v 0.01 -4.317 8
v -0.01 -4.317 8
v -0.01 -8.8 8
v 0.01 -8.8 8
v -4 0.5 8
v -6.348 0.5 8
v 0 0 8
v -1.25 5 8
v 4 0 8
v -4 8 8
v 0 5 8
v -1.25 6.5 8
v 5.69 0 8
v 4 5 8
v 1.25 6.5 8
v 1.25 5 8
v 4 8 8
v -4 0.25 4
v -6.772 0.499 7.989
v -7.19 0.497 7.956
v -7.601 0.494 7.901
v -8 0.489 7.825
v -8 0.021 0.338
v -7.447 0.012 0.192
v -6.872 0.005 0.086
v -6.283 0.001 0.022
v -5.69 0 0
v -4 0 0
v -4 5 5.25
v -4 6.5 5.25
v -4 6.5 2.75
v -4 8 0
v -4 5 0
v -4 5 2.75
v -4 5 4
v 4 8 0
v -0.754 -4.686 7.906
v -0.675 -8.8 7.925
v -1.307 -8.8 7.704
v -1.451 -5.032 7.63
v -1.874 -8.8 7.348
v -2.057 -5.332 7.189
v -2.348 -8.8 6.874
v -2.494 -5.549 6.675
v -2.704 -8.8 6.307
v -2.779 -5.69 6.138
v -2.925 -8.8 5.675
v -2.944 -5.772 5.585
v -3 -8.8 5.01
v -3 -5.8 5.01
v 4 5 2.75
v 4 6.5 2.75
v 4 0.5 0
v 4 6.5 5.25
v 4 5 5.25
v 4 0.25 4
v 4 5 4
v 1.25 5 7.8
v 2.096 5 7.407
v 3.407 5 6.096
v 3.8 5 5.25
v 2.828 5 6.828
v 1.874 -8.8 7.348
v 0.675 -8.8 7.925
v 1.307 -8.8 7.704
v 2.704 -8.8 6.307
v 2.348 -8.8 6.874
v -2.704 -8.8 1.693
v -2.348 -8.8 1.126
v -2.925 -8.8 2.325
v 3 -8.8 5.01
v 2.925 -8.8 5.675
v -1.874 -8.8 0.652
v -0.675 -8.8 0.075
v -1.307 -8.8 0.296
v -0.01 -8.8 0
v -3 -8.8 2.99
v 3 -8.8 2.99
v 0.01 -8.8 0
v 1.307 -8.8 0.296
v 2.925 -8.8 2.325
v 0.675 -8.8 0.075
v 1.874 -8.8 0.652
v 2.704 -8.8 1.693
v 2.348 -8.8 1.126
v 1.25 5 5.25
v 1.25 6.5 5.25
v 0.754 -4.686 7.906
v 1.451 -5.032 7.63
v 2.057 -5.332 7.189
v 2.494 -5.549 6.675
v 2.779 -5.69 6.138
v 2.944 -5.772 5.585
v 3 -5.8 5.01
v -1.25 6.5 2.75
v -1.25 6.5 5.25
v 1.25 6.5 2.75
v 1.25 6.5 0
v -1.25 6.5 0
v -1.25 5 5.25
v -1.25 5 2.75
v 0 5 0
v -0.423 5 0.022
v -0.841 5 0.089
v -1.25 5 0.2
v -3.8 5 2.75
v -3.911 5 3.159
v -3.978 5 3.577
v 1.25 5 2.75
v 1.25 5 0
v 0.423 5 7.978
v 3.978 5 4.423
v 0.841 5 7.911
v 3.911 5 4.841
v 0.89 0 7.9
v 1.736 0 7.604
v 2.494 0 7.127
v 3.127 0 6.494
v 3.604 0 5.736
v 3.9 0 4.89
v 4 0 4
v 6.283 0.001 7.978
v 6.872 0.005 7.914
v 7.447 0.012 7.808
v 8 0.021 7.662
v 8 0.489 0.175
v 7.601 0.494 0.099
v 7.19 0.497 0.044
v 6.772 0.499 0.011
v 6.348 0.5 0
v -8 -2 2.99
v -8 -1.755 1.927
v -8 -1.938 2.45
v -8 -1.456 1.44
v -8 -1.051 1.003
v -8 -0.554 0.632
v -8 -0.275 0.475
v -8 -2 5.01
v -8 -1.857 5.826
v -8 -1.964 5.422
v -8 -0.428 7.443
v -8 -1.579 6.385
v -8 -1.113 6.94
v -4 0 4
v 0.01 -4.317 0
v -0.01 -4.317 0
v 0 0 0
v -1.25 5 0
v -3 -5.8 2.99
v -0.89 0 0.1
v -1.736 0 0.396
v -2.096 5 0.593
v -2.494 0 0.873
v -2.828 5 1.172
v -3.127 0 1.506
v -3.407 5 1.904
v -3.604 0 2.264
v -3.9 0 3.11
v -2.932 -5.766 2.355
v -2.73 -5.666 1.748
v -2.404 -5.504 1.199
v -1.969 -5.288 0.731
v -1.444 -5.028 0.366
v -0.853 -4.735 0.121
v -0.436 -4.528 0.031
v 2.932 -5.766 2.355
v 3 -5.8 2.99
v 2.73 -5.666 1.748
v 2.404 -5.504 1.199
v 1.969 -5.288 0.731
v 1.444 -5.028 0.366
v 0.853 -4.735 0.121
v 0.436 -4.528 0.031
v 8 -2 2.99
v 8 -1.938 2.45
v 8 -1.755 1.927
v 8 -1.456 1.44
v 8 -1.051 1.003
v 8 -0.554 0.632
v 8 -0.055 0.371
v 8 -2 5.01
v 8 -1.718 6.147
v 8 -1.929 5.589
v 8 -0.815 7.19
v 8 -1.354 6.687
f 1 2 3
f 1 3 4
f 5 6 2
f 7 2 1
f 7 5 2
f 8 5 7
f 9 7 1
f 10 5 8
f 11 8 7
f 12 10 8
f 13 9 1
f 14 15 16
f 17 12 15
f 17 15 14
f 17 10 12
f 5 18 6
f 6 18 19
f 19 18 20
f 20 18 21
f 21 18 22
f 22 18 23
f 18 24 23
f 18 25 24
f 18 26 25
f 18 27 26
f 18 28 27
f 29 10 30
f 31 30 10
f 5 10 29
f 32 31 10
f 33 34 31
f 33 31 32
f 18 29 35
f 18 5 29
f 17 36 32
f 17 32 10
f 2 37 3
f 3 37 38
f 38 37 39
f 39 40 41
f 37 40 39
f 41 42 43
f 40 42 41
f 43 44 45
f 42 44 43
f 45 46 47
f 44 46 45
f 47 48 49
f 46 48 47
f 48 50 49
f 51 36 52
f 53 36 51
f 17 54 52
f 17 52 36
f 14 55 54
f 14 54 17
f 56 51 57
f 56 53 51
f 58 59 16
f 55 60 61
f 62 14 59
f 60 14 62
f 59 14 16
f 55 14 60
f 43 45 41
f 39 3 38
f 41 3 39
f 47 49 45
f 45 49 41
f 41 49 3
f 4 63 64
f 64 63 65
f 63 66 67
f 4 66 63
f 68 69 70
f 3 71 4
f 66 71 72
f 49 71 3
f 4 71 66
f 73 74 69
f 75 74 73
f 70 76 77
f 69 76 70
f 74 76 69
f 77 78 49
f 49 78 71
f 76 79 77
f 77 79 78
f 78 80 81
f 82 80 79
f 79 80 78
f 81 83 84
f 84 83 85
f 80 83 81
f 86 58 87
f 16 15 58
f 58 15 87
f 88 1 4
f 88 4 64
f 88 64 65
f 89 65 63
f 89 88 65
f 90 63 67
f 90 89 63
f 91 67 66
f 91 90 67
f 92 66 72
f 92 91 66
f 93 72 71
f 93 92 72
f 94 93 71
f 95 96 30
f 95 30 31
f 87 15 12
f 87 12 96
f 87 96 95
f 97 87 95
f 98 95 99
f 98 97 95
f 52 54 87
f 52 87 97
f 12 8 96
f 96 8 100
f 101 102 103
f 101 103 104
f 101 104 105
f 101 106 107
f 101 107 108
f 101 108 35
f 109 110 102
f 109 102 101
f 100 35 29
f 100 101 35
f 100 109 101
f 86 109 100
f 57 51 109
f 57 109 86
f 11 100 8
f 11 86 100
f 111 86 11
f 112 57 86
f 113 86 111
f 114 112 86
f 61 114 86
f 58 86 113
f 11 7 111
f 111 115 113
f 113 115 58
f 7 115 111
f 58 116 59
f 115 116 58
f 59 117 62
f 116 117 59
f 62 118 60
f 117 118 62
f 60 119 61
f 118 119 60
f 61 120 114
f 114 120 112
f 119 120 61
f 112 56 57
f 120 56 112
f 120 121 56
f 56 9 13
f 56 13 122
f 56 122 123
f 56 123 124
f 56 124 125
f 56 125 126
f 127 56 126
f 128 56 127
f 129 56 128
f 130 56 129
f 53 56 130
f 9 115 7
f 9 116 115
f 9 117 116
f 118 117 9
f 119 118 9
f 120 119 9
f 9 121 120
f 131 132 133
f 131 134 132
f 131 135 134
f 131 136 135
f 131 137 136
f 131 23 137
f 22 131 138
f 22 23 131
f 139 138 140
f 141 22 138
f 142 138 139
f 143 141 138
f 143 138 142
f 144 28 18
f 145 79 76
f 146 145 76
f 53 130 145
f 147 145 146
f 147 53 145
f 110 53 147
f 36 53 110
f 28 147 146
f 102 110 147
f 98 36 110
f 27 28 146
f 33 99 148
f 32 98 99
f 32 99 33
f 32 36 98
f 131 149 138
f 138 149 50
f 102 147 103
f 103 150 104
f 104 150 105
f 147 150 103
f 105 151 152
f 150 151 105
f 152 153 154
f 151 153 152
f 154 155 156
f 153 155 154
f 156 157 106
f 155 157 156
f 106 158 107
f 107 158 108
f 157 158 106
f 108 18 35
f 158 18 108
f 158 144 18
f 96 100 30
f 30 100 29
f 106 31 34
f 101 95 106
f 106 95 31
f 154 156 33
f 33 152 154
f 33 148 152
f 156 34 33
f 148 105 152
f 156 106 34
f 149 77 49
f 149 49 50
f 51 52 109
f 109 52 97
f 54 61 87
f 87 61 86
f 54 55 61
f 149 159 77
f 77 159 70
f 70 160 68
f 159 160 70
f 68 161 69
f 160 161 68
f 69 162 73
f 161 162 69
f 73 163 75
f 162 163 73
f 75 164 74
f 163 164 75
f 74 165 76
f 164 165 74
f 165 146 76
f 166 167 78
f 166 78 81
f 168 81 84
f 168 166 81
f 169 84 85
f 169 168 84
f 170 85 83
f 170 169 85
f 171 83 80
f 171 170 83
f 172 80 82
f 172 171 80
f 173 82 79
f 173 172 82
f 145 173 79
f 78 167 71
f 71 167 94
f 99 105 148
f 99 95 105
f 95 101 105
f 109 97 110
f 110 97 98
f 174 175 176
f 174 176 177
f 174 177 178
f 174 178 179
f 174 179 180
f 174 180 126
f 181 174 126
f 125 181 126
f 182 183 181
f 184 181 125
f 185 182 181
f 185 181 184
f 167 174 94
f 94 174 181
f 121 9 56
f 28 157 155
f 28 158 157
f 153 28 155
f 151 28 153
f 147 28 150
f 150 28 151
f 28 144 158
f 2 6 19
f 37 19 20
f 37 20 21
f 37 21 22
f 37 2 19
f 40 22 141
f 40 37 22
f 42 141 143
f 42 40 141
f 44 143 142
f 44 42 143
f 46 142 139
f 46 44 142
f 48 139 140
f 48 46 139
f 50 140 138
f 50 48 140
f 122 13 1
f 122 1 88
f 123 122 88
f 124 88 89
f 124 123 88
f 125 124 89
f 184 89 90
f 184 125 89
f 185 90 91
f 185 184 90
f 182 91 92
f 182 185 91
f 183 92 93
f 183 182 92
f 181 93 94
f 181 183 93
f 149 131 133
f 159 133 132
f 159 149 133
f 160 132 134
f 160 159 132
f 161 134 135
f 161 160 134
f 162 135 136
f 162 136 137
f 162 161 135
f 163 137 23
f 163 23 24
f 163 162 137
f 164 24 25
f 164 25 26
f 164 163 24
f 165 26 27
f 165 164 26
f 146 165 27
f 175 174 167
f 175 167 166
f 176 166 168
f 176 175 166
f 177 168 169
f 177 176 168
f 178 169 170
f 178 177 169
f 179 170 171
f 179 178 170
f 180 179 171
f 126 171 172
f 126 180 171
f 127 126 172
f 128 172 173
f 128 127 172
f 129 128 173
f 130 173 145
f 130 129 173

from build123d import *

# Parameters (mm, degrees)
PAD_DEPTH       = 8
PAD001_DEPTH    = 5
PAD002_DEPTH    = 4
PAD003_DEPTH    = 4
SKETCH004_W     = 8
SKETCH004_H     = 8
PAD004_DEPTH    = 3
SKETCH005_W     = 2.5
SKETCH005_H     = 1.5
POCKET_DEPTH    = 8.001
SKETCH006_W     = 1.5
SKETCH006_H     = 2.5
POCKET001_DEPTH = 12.001
FILLET_R        = 2.99
FILLET001_R     = 2.99


with BuildPart() as part:
    # Sketch → Pad (new body)
    with BuildSketch(Plane.XY):
        Polygon((-8, 0), (8, 0), (8, -2), (3, -5.8), (3, -8.8), (-3, -8.8), (-3, -5.8), (-8, -2), align=None)
    extrude(amount=PAD_DEPTH)

    # Sketch001 (on Face2 of Pad) → Pad001 (join)
    with BuildSketch(Plane(origin=(0, 0, 0), x_dir=(-1, 0, 0), z_dir=(0, 1, 0))):
        with BuildLine():
            Line((-4, 4), (-4, 0))
            Line((-4, 0), (0, 0))
            ThreePointArc((0, 0), (2.828427, 1.171573), (4, 4))
            Line((4, 4), (4, 8))
            Line((4, 8), (0, 8))
            ThreePointArc((0, 8), (-2.828427, 6.828427), (-4, 4))
        make_face()
    extrude(amount=PAD001_DEPTH)

    # Sketch002 (on Face13 of Pad001) → Pad002 (join)
    with BuildSketch(Plane.YZ.offset(4)):
        Polygon((0, 0), (0, 8), (0.5, 0), align=None)
    extrude(amount=PAD002_DEPTH)

    # Sketch003 (on Face6 of Pad002) → Pad003 (join)
    with BuildSketch(Plane(origin=(-4, 0, 0), x_dir=(0, -1, 0), z_dir=(-1, 0, 0))):
        Polygon((0, 0), (0, 8), (-0.5, 8), align=None)
    extrude(amount=PAD003_DEPTH)

    # Sketch004 (on Face7 of Pad003) → Pad004 (join)
    with BuildSketch(Plane(origin=(0, 5, 0), x_dir=(-1, 0, 0), z_dir=(0, 1, 0))):
        with Locations((0, 4)):
            Rectangle(SKETCH004_W, SKETCH004_H)
    extrude(amount=PAD004_DEPTH)

    # Sketch005 (on Face20 of Pad004) → Pocket (cut, through all)
    with BuildSketch(Plane.XY.offset(8)):
        with Locations((0, 5.75)):
            Rectangle(SKETCH005_W, SKETCH005_H)
    extrude(amount=-POCKET_DEPTH, mode=Mode.SUBTRACT)

    # Sketch006 (on Face9 of Pocket) → Pocket001 (cut, through all)
    with BuildSketch(Plane.YZ.offset(4)):
        with Locations((5.75, 4)):
            Rectangle(SKETCH006_W, SKETCH006_H)
    extrude(amount=-POCKET001_DEPTH, mode=Mode.SUBTRACT)

    # Fillet
    fillet_edges = [part.edges().sort_by_distance(p)[0] for p in [
        (-3, -7.3, 8),
        (3, -7.3, 8),
        (-3, -7.3, 0),
        (3, -7.3, 0),
    ]]
    fillet(fillet_edges, radius=FILLET_R)

    # Fillet001
    fillet001_edges = [part.edges().sort_by_distance(p)[0] for p in [
        (-5.5, -3.9, 8),
        (5.5, -3.9, 8),
        (-5.5, -3.9, 0),
        (5.5, -3.9, 0),
    ]]
    fillet(fillet001_edges, radius=FILLET001_R)


solid = part.part
